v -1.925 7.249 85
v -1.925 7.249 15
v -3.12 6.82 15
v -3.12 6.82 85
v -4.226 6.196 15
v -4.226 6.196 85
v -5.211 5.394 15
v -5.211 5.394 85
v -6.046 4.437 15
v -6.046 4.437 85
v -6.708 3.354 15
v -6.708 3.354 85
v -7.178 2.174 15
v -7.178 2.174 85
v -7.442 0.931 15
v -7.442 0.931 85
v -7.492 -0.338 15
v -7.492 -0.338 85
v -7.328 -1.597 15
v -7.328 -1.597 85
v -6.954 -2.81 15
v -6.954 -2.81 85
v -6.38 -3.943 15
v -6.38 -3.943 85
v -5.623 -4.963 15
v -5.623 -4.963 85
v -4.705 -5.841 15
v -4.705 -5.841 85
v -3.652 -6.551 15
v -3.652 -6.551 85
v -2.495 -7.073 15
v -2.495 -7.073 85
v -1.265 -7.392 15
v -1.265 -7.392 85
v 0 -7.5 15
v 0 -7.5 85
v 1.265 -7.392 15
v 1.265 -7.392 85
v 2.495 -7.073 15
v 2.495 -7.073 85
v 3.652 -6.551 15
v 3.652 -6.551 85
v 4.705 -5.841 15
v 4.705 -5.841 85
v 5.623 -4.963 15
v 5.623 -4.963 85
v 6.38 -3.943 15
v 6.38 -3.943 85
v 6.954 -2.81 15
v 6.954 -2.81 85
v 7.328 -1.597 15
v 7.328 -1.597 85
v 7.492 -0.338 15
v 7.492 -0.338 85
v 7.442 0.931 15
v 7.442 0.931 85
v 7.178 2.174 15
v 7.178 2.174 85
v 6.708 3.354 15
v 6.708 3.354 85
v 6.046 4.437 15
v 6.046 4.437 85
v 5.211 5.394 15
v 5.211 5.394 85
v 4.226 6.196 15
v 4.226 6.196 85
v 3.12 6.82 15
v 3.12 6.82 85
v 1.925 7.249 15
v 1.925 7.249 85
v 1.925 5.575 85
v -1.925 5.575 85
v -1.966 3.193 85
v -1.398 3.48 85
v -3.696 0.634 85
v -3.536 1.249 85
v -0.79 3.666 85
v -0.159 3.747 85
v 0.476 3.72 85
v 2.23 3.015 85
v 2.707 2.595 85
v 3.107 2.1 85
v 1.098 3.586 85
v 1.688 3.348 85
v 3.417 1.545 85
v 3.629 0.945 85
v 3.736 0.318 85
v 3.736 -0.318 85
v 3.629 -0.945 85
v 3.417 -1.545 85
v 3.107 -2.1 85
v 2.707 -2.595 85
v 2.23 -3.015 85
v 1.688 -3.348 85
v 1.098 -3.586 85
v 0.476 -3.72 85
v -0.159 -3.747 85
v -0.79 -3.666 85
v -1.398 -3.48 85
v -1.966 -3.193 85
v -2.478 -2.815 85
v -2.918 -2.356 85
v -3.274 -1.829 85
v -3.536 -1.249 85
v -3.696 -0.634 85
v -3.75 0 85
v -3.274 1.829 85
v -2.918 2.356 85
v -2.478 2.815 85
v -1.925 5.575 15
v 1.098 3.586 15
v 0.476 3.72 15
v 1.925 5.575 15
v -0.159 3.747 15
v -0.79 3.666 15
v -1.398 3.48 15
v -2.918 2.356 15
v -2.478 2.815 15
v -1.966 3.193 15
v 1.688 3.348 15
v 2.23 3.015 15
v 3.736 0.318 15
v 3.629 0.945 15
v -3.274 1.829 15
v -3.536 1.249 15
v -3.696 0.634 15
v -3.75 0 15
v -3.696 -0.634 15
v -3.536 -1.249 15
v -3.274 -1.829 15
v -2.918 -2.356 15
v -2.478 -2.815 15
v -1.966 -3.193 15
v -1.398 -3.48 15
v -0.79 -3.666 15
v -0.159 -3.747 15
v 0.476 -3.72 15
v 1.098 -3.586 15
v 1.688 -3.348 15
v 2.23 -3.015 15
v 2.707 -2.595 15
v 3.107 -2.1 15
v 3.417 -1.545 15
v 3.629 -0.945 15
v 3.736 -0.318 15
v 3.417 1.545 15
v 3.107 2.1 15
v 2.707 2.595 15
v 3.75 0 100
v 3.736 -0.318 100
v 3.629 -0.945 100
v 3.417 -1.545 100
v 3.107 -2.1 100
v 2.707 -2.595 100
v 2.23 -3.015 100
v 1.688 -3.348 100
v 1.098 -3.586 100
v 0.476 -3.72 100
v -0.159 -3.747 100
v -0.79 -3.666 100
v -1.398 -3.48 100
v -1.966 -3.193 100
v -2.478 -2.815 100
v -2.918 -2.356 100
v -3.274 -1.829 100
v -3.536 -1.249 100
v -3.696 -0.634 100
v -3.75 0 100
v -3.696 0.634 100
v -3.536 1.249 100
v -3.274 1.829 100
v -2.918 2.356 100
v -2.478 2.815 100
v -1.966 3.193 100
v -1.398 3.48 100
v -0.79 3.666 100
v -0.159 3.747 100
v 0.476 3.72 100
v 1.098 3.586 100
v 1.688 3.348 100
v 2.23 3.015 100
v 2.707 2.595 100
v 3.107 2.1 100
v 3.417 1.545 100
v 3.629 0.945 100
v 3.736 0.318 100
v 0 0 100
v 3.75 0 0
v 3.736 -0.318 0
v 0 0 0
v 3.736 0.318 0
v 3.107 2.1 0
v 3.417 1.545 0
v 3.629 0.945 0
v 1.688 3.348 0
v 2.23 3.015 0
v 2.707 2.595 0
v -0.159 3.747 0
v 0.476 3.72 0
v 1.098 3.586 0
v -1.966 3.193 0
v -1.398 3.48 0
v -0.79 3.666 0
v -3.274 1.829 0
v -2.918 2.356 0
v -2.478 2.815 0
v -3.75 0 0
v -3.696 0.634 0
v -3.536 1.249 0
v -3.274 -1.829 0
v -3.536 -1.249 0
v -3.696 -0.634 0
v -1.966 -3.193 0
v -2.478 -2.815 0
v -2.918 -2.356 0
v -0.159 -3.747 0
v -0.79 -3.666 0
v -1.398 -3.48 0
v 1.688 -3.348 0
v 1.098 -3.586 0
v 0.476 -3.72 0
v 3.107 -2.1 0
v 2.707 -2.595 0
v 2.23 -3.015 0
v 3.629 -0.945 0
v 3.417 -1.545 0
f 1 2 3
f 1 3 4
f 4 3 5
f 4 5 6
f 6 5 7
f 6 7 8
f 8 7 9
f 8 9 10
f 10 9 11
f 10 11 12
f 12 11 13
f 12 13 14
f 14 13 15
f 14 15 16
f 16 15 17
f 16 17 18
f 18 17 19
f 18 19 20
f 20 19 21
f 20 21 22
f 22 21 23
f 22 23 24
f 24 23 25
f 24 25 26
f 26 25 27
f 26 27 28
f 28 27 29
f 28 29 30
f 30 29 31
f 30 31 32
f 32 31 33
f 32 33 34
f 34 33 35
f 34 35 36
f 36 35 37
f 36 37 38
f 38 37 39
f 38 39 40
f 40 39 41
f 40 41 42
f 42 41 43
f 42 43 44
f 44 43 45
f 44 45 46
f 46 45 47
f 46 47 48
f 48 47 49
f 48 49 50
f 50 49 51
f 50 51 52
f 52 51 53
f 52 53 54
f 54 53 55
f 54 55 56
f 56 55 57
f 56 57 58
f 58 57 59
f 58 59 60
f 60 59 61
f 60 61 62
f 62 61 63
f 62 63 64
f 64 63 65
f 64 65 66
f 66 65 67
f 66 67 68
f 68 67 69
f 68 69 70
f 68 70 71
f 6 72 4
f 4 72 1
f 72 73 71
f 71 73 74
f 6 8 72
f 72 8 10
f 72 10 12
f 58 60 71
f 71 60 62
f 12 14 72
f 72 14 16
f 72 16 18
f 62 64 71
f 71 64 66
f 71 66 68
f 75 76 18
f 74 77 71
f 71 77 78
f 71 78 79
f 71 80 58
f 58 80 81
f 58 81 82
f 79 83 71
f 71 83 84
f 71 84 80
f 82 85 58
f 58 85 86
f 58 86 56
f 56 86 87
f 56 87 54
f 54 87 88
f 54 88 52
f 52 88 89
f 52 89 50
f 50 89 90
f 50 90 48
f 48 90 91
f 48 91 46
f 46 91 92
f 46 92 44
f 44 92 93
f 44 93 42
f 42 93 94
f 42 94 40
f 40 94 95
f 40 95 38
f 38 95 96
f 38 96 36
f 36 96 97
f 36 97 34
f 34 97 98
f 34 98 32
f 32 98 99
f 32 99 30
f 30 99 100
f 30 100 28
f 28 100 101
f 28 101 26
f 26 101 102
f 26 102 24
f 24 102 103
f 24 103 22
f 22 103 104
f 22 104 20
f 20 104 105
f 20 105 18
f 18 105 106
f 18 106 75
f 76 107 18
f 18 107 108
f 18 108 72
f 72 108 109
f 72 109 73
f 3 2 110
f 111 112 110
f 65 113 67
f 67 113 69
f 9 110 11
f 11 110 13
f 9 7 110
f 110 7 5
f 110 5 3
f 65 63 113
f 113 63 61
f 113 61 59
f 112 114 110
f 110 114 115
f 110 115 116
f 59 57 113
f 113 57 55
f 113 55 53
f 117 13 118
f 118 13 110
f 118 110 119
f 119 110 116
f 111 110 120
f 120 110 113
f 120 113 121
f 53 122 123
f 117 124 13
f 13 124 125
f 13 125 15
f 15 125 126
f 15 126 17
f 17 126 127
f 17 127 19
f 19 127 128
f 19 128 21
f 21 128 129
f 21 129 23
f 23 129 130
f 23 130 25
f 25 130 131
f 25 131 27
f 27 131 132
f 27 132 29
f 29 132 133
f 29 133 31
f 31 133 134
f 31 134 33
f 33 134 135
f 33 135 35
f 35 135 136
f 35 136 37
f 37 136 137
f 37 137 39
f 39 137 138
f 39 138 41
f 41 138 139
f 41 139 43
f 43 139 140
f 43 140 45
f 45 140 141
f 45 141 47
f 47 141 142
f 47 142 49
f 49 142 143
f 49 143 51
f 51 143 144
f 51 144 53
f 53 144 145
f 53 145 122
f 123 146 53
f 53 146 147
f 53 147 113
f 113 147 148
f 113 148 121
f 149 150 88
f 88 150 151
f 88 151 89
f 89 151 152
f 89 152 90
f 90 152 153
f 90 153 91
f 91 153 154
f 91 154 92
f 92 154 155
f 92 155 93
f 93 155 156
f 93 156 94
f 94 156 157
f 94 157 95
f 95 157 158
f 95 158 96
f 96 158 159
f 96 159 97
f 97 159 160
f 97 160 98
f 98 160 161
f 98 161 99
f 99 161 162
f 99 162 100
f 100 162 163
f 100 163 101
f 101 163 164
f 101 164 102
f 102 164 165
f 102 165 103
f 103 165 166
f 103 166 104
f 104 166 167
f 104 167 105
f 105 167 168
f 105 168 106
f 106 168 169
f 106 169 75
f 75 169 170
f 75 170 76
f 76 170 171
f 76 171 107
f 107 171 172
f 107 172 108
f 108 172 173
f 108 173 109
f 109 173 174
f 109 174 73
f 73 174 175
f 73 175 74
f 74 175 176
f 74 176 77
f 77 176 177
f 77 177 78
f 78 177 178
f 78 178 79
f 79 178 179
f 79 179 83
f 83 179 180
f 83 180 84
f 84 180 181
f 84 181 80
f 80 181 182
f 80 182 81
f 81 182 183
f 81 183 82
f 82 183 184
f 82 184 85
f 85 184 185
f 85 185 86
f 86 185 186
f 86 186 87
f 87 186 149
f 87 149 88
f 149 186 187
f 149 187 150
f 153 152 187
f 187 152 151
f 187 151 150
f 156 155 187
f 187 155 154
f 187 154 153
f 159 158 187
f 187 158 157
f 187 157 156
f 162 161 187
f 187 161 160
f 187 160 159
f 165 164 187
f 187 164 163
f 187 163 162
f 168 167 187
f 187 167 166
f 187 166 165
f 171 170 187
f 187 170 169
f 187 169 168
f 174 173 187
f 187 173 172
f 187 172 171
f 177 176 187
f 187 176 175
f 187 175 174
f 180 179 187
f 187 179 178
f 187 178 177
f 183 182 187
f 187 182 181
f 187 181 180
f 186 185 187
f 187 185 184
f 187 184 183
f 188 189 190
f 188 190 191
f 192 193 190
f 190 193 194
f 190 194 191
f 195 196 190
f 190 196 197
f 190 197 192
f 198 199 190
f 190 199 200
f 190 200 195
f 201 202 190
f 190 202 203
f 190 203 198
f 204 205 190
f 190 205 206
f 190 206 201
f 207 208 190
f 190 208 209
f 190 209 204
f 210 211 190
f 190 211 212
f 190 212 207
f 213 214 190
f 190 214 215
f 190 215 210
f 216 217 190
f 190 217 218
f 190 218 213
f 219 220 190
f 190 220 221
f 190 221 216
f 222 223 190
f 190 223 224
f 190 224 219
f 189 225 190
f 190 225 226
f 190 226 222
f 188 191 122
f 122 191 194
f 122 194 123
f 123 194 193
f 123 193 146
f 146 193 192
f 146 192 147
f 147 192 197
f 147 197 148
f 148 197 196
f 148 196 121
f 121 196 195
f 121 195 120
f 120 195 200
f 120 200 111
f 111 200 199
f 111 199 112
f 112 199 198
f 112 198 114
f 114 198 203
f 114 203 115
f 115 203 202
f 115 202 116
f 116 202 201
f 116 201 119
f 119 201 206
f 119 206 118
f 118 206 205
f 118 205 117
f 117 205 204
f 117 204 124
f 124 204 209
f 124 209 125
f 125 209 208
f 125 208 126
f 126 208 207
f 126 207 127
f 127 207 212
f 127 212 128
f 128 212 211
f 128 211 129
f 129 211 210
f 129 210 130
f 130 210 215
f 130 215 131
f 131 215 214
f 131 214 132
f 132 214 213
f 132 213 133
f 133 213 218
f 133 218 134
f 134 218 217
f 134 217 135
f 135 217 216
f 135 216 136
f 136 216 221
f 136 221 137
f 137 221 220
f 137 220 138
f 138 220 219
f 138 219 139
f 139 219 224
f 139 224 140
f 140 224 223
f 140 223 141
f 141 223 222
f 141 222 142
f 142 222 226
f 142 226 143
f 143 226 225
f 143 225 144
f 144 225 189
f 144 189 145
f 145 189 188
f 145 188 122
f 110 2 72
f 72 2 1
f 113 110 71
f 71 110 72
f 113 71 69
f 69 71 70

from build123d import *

# Parameters (mm, degrees)
SKETCH1_R                      = 3.75
BOSS_EXTRUDE1_DEPTH            = 100
BOSS_EXTRUDE2_DEPTH            = 35
BOSS_EXTRUDE2_DEPTH_BACK       = 35
SKETCH2_R                      = 7.5
CUT_EXTRUDE1_REACH             = 53.113
SKETCH3_W                      = 3.85
SKETCH3_H                      = 3.85
CUT_EXTRUDE1_DIRECTION_2_REACH = 53.113


with BuildPart() as part:
    # Sketch1 → Boss-Extrude1 (new body)
    with BuildSketch(Plane.XY):
        Circle(SKETCH1_R)
    extrude(amount=BOSS_EXTRUDE1_DEPTH)

    # Sketch2 → Boss-Extrude2 (add, two sides: drawn at the far end of the back side and taken through both)
    with BuildSketch(Plane(origin=(0, 0, 50), x_dir=(-1, 0, 0), z_dir=(0, 0, -1)).offset(-BOSS_EXTRUDE2_DEPTH_BACK)):
        Circle(SKETCH2_R)
    extrude(amount=BOSS_EXTRUDE2_DEPTH + BOSS_EXTRUDE2_DEPTH_BACK)

    # Cut-Extrude1: up to this face of the body (flat: up to its plane)
    cut_extrude1_end = Plane(part.part.faces().sort_by_distance((7.287867966, 0, 85))[0])
    # Sketch3 → Cut-Extrude1 (cut, up to the picked face)
    with BuildSketch(Plane(origin=(0, 0, 50), x_dir=(-1, 0, 0), z_dir=(0, 0, -1)), mode=Mode.PRIVATE) as cut_extrude1_sk1:
        with Locations((0, 7.5)):
            Rectangle(SKETCH3_W, SKETCH3_H)
    cut_extrude1_tool1 = split(extrude(cut_extrude1_sk1.sketch, amount=-CUT_EXTRUDE1_REACH, mode=Mode.PRIVATE), bisect_by=cut_extrude1_end, keep=Keep.BOTH, mode=Mode.PRIVATE)
    add(cut_extrude1_tool1.solids().sort_by(Axis((0, 7.5, 50), (0, 0, 1)))[0], mode=Mode.SUBTRACT)

    # Cut-Extrude1 direction 2: up to this face of the body (flat: up to its plane)
    cut_extrude1_direction_2_end = Plane(part.part.faces().sort_by_distance((7.287867966, 0, 15))[0])
    # Sketch3 → Cut-Extrude1 direction 2 (cut, up to the picked face)
    with BuildSketch(Plane(origin=(0, 0, 50), x_dir=(-1, 0, 0), z_dir=(0, 0, -1)), mode=Mode.PRIVATE) as cut_extrude1_direction_2_sk1:
        with Locations((0, 7.5)):
            Rectangle(SKETCH3_W, SKETCH3_H)
    cut_extrude1_direction_2_tool1 = split(extrude(cut_extrude1_direction_2_sk1.sketch, amount=CUT_EXTRUDE1_DIRECTION_2_REACH, mode=Mode.PRIVATE), bisect_by=cut_extrude1_direction_2_end, keep=Keep.BOTH, mode=Mode.PRIVATE)
    add(cut_extrude1_direction_2_tool1.solids().sort_by(Axis((0, 7.5, 50), (0, 0, -1)))[0], mode=Mode.SUBTRACT)


solid = part.part
